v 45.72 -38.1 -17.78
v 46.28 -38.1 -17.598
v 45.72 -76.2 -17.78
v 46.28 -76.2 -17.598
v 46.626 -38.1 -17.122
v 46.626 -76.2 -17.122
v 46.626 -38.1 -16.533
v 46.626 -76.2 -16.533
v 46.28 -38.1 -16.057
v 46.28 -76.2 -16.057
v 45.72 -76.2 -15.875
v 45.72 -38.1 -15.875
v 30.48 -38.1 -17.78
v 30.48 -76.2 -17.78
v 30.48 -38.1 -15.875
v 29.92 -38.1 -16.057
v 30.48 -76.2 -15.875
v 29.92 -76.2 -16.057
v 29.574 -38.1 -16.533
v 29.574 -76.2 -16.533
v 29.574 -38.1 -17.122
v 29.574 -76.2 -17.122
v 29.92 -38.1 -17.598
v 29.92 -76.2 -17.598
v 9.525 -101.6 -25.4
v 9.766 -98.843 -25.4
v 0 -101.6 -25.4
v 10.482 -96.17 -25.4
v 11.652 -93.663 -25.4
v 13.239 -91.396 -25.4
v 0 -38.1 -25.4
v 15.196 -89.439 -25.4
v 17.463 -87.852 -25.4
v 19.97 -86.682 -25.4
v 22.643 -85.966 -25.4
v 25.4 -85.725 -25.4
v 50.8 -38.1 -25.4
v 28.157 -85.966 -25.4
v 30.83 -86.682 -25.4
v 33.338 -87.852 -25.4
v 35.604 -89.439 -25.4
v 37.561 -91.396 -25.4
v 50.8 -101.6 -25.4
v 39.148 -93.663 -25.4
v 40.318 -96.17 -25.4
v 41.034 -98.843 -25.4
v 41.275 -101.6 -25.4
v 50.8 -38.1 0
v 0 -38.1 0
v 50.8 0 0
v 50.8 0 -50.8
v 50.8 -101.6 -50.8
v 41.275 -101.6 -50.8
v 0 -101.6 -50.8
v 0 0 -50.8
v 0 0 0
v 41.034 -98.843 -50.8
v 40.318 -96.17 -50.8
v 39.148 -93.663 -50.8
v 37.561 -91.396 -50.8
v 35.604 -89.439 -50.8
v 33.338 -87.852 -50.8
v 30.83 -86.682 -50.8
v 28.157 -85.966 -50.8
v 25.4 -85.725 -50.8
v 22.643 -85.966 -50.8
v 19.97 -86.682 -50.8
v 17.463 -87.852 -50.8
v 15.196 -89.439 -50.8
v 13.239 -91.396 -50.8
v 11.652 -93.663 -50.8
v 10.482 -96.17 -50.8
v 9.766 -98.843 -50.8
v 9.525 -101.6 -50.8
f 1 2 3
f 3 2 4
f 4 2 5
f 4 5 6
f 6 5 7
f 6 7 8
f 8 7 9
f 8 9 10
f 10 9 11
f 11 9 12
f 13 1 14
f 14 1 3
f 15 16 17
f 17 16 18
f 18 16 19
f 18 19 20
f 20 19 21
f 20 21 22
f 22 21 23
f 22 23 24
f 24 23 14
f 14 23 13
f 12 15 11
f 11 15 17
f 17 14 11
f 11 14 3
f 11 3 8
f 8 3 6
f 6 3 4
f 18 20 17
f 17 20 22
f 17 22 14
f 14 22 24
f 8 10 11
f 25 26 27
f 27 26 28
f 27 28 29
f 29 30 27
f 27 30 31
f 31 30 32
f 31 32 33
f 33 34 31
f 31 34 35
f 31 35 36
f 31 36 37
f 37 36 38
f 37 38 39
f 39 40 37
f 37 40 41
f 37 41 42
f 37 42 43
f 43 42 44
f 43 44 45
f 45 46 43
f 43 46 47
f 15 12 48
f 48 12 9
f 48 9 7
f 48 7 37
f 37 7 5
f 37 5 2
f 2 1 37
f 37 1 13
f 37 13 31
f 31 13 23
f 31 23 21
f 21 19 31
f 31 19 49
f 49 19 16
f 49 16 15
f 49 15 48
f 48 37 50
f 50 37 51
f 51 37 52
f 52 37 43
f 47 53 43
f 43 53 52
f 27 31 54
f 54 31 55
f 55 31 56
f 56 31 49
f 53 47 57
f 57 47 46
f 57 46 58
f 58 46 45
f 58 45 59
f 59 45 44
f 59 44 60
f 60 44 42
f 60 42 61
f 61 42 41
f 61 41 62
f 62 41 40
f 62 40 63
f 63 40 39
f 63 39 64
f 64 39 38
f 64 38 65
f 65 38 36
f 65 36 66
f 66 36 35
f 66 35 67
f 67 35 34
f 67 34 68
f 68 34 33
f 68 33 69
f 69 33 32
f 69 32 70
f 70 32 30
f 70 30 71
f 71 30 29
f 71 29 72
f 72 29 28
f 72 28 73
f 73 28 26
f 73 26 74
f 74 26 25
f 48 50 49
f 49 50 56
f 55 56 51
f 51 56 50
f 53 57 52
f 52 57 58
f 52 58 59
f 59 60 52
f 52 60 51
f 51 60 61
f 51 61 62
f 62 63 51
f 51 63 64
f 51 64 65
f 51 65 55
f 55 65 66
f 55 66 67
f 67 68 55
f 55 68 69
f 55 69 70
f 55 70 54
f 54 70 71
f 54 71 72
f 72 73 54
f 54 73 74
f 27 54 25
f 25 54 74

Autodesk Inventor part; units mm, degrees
ref_plane "YZ Plane" through (0, 0, 0) normal (1, 0, 0) x (0, 1, 0)
ref_plane "XZ Plane" through (0, 0, 0) normal (0, 1, 0) x (-1, 0, 0)
ref_plane "XY Plane" through (0, 0, 0) normal (0, 0, 1) x (1, 0, 0)
sketch "Sketch4" plane through (0, 0, 0) normal (1, 0, 0) x (0, 1, 0)
  line L0 (0, 0) -> (-101.6, 0)
  line L1 (-101.6, 0) -> (-101.6, -50.8)
  line L2 (-101.6, -50.8) -> (0, -50.8)
  line L3 (0, -50.8) -> (0, 0)
  dimension "d6" = 101.6
  dimension "d7" = 50.8
extrude "Extrusion3" add sketch "Sketch4" along normal blind 50.8
sketch "Sketch5" plane through (0, -101.6, 0) normal (0, 0, 1) x (1, 0, 0)
  line L0 (0, 0) -> (50.8, 0) projected
  arc A0 (41.275, 0) -> (9.525, 0) centre (25.4, 0) ccw
  line L1 (0, 101.6) -> (0, 0) projected
  dimension "d10" = 15.875
  dimension "d11" = 31.75
  dimension "d12" = 50.8
  dimension "d13" = 9.525
extrude "Extrusion4" cut sketch "Sketch5" against normal through all
sketch "Sketch6" plane through (0, -101.6, -50.8) normal (0, -1, 0) x (1, 0, 0)
  line L0 (0, 50.8) -> (9.525, 50.8) projected
  line L1 (50.8, 50.8) -> (50.8, 0) projected
  line L2 (0, 50.8) -> (50.8, 50.8)
  line L3 (50.8, 50.8) -> (50.8, 25.4)
  line L4 (50.8, 25.4) -> (0, 25.4)
  line L5 (0, 25.4) -> (0, 50.8)
extrude "Extrusion5" cut sketch "Sketch6" against normal blind 63.5
sketch "Sketch7" plane through (0, -38.1, -50.8) normal (0, -1, 0) x (1, 0, 0)
  line L0 (46.6725, 33.9725) -> (29.5275, 33.9725) construction
  line L1 (45.72, 34.925) -> (30.48, 34.925)
  line L2 (30.48, 33.02) -> (45.72, 33.02)
  arc A0 (45.72, 33.02) -> (45.72, 34.925) centre (45.72, 33.9725) ccw
  arc A1 (30.48, 34.925) -> (30.48, 33.02) centre (30.48, 33.9725) ccw
  line L3 (0, 50.8) -> (50.8, 50.8) projected
  line L4 (50.8, 50.8) -> (50.8, 25.4) projected
  line L5 (41.275, 25.4) -> (9.525, 25.4) projected
  point P0 (38.1, 33.9725)
  dimension "d18" = 17.145
  dimension "d19" = 1.905
  dimension "d20" = 50.8
  dimension "d21" = 4.1275
  dimension "d22" = 7.62
extrude "Extrusion6" add sketch "Sketch7" along normal blind 38.1
equation "\"d13\" = -0.5 * d11 + 0.5 * d12"
properties part number "graber base"
